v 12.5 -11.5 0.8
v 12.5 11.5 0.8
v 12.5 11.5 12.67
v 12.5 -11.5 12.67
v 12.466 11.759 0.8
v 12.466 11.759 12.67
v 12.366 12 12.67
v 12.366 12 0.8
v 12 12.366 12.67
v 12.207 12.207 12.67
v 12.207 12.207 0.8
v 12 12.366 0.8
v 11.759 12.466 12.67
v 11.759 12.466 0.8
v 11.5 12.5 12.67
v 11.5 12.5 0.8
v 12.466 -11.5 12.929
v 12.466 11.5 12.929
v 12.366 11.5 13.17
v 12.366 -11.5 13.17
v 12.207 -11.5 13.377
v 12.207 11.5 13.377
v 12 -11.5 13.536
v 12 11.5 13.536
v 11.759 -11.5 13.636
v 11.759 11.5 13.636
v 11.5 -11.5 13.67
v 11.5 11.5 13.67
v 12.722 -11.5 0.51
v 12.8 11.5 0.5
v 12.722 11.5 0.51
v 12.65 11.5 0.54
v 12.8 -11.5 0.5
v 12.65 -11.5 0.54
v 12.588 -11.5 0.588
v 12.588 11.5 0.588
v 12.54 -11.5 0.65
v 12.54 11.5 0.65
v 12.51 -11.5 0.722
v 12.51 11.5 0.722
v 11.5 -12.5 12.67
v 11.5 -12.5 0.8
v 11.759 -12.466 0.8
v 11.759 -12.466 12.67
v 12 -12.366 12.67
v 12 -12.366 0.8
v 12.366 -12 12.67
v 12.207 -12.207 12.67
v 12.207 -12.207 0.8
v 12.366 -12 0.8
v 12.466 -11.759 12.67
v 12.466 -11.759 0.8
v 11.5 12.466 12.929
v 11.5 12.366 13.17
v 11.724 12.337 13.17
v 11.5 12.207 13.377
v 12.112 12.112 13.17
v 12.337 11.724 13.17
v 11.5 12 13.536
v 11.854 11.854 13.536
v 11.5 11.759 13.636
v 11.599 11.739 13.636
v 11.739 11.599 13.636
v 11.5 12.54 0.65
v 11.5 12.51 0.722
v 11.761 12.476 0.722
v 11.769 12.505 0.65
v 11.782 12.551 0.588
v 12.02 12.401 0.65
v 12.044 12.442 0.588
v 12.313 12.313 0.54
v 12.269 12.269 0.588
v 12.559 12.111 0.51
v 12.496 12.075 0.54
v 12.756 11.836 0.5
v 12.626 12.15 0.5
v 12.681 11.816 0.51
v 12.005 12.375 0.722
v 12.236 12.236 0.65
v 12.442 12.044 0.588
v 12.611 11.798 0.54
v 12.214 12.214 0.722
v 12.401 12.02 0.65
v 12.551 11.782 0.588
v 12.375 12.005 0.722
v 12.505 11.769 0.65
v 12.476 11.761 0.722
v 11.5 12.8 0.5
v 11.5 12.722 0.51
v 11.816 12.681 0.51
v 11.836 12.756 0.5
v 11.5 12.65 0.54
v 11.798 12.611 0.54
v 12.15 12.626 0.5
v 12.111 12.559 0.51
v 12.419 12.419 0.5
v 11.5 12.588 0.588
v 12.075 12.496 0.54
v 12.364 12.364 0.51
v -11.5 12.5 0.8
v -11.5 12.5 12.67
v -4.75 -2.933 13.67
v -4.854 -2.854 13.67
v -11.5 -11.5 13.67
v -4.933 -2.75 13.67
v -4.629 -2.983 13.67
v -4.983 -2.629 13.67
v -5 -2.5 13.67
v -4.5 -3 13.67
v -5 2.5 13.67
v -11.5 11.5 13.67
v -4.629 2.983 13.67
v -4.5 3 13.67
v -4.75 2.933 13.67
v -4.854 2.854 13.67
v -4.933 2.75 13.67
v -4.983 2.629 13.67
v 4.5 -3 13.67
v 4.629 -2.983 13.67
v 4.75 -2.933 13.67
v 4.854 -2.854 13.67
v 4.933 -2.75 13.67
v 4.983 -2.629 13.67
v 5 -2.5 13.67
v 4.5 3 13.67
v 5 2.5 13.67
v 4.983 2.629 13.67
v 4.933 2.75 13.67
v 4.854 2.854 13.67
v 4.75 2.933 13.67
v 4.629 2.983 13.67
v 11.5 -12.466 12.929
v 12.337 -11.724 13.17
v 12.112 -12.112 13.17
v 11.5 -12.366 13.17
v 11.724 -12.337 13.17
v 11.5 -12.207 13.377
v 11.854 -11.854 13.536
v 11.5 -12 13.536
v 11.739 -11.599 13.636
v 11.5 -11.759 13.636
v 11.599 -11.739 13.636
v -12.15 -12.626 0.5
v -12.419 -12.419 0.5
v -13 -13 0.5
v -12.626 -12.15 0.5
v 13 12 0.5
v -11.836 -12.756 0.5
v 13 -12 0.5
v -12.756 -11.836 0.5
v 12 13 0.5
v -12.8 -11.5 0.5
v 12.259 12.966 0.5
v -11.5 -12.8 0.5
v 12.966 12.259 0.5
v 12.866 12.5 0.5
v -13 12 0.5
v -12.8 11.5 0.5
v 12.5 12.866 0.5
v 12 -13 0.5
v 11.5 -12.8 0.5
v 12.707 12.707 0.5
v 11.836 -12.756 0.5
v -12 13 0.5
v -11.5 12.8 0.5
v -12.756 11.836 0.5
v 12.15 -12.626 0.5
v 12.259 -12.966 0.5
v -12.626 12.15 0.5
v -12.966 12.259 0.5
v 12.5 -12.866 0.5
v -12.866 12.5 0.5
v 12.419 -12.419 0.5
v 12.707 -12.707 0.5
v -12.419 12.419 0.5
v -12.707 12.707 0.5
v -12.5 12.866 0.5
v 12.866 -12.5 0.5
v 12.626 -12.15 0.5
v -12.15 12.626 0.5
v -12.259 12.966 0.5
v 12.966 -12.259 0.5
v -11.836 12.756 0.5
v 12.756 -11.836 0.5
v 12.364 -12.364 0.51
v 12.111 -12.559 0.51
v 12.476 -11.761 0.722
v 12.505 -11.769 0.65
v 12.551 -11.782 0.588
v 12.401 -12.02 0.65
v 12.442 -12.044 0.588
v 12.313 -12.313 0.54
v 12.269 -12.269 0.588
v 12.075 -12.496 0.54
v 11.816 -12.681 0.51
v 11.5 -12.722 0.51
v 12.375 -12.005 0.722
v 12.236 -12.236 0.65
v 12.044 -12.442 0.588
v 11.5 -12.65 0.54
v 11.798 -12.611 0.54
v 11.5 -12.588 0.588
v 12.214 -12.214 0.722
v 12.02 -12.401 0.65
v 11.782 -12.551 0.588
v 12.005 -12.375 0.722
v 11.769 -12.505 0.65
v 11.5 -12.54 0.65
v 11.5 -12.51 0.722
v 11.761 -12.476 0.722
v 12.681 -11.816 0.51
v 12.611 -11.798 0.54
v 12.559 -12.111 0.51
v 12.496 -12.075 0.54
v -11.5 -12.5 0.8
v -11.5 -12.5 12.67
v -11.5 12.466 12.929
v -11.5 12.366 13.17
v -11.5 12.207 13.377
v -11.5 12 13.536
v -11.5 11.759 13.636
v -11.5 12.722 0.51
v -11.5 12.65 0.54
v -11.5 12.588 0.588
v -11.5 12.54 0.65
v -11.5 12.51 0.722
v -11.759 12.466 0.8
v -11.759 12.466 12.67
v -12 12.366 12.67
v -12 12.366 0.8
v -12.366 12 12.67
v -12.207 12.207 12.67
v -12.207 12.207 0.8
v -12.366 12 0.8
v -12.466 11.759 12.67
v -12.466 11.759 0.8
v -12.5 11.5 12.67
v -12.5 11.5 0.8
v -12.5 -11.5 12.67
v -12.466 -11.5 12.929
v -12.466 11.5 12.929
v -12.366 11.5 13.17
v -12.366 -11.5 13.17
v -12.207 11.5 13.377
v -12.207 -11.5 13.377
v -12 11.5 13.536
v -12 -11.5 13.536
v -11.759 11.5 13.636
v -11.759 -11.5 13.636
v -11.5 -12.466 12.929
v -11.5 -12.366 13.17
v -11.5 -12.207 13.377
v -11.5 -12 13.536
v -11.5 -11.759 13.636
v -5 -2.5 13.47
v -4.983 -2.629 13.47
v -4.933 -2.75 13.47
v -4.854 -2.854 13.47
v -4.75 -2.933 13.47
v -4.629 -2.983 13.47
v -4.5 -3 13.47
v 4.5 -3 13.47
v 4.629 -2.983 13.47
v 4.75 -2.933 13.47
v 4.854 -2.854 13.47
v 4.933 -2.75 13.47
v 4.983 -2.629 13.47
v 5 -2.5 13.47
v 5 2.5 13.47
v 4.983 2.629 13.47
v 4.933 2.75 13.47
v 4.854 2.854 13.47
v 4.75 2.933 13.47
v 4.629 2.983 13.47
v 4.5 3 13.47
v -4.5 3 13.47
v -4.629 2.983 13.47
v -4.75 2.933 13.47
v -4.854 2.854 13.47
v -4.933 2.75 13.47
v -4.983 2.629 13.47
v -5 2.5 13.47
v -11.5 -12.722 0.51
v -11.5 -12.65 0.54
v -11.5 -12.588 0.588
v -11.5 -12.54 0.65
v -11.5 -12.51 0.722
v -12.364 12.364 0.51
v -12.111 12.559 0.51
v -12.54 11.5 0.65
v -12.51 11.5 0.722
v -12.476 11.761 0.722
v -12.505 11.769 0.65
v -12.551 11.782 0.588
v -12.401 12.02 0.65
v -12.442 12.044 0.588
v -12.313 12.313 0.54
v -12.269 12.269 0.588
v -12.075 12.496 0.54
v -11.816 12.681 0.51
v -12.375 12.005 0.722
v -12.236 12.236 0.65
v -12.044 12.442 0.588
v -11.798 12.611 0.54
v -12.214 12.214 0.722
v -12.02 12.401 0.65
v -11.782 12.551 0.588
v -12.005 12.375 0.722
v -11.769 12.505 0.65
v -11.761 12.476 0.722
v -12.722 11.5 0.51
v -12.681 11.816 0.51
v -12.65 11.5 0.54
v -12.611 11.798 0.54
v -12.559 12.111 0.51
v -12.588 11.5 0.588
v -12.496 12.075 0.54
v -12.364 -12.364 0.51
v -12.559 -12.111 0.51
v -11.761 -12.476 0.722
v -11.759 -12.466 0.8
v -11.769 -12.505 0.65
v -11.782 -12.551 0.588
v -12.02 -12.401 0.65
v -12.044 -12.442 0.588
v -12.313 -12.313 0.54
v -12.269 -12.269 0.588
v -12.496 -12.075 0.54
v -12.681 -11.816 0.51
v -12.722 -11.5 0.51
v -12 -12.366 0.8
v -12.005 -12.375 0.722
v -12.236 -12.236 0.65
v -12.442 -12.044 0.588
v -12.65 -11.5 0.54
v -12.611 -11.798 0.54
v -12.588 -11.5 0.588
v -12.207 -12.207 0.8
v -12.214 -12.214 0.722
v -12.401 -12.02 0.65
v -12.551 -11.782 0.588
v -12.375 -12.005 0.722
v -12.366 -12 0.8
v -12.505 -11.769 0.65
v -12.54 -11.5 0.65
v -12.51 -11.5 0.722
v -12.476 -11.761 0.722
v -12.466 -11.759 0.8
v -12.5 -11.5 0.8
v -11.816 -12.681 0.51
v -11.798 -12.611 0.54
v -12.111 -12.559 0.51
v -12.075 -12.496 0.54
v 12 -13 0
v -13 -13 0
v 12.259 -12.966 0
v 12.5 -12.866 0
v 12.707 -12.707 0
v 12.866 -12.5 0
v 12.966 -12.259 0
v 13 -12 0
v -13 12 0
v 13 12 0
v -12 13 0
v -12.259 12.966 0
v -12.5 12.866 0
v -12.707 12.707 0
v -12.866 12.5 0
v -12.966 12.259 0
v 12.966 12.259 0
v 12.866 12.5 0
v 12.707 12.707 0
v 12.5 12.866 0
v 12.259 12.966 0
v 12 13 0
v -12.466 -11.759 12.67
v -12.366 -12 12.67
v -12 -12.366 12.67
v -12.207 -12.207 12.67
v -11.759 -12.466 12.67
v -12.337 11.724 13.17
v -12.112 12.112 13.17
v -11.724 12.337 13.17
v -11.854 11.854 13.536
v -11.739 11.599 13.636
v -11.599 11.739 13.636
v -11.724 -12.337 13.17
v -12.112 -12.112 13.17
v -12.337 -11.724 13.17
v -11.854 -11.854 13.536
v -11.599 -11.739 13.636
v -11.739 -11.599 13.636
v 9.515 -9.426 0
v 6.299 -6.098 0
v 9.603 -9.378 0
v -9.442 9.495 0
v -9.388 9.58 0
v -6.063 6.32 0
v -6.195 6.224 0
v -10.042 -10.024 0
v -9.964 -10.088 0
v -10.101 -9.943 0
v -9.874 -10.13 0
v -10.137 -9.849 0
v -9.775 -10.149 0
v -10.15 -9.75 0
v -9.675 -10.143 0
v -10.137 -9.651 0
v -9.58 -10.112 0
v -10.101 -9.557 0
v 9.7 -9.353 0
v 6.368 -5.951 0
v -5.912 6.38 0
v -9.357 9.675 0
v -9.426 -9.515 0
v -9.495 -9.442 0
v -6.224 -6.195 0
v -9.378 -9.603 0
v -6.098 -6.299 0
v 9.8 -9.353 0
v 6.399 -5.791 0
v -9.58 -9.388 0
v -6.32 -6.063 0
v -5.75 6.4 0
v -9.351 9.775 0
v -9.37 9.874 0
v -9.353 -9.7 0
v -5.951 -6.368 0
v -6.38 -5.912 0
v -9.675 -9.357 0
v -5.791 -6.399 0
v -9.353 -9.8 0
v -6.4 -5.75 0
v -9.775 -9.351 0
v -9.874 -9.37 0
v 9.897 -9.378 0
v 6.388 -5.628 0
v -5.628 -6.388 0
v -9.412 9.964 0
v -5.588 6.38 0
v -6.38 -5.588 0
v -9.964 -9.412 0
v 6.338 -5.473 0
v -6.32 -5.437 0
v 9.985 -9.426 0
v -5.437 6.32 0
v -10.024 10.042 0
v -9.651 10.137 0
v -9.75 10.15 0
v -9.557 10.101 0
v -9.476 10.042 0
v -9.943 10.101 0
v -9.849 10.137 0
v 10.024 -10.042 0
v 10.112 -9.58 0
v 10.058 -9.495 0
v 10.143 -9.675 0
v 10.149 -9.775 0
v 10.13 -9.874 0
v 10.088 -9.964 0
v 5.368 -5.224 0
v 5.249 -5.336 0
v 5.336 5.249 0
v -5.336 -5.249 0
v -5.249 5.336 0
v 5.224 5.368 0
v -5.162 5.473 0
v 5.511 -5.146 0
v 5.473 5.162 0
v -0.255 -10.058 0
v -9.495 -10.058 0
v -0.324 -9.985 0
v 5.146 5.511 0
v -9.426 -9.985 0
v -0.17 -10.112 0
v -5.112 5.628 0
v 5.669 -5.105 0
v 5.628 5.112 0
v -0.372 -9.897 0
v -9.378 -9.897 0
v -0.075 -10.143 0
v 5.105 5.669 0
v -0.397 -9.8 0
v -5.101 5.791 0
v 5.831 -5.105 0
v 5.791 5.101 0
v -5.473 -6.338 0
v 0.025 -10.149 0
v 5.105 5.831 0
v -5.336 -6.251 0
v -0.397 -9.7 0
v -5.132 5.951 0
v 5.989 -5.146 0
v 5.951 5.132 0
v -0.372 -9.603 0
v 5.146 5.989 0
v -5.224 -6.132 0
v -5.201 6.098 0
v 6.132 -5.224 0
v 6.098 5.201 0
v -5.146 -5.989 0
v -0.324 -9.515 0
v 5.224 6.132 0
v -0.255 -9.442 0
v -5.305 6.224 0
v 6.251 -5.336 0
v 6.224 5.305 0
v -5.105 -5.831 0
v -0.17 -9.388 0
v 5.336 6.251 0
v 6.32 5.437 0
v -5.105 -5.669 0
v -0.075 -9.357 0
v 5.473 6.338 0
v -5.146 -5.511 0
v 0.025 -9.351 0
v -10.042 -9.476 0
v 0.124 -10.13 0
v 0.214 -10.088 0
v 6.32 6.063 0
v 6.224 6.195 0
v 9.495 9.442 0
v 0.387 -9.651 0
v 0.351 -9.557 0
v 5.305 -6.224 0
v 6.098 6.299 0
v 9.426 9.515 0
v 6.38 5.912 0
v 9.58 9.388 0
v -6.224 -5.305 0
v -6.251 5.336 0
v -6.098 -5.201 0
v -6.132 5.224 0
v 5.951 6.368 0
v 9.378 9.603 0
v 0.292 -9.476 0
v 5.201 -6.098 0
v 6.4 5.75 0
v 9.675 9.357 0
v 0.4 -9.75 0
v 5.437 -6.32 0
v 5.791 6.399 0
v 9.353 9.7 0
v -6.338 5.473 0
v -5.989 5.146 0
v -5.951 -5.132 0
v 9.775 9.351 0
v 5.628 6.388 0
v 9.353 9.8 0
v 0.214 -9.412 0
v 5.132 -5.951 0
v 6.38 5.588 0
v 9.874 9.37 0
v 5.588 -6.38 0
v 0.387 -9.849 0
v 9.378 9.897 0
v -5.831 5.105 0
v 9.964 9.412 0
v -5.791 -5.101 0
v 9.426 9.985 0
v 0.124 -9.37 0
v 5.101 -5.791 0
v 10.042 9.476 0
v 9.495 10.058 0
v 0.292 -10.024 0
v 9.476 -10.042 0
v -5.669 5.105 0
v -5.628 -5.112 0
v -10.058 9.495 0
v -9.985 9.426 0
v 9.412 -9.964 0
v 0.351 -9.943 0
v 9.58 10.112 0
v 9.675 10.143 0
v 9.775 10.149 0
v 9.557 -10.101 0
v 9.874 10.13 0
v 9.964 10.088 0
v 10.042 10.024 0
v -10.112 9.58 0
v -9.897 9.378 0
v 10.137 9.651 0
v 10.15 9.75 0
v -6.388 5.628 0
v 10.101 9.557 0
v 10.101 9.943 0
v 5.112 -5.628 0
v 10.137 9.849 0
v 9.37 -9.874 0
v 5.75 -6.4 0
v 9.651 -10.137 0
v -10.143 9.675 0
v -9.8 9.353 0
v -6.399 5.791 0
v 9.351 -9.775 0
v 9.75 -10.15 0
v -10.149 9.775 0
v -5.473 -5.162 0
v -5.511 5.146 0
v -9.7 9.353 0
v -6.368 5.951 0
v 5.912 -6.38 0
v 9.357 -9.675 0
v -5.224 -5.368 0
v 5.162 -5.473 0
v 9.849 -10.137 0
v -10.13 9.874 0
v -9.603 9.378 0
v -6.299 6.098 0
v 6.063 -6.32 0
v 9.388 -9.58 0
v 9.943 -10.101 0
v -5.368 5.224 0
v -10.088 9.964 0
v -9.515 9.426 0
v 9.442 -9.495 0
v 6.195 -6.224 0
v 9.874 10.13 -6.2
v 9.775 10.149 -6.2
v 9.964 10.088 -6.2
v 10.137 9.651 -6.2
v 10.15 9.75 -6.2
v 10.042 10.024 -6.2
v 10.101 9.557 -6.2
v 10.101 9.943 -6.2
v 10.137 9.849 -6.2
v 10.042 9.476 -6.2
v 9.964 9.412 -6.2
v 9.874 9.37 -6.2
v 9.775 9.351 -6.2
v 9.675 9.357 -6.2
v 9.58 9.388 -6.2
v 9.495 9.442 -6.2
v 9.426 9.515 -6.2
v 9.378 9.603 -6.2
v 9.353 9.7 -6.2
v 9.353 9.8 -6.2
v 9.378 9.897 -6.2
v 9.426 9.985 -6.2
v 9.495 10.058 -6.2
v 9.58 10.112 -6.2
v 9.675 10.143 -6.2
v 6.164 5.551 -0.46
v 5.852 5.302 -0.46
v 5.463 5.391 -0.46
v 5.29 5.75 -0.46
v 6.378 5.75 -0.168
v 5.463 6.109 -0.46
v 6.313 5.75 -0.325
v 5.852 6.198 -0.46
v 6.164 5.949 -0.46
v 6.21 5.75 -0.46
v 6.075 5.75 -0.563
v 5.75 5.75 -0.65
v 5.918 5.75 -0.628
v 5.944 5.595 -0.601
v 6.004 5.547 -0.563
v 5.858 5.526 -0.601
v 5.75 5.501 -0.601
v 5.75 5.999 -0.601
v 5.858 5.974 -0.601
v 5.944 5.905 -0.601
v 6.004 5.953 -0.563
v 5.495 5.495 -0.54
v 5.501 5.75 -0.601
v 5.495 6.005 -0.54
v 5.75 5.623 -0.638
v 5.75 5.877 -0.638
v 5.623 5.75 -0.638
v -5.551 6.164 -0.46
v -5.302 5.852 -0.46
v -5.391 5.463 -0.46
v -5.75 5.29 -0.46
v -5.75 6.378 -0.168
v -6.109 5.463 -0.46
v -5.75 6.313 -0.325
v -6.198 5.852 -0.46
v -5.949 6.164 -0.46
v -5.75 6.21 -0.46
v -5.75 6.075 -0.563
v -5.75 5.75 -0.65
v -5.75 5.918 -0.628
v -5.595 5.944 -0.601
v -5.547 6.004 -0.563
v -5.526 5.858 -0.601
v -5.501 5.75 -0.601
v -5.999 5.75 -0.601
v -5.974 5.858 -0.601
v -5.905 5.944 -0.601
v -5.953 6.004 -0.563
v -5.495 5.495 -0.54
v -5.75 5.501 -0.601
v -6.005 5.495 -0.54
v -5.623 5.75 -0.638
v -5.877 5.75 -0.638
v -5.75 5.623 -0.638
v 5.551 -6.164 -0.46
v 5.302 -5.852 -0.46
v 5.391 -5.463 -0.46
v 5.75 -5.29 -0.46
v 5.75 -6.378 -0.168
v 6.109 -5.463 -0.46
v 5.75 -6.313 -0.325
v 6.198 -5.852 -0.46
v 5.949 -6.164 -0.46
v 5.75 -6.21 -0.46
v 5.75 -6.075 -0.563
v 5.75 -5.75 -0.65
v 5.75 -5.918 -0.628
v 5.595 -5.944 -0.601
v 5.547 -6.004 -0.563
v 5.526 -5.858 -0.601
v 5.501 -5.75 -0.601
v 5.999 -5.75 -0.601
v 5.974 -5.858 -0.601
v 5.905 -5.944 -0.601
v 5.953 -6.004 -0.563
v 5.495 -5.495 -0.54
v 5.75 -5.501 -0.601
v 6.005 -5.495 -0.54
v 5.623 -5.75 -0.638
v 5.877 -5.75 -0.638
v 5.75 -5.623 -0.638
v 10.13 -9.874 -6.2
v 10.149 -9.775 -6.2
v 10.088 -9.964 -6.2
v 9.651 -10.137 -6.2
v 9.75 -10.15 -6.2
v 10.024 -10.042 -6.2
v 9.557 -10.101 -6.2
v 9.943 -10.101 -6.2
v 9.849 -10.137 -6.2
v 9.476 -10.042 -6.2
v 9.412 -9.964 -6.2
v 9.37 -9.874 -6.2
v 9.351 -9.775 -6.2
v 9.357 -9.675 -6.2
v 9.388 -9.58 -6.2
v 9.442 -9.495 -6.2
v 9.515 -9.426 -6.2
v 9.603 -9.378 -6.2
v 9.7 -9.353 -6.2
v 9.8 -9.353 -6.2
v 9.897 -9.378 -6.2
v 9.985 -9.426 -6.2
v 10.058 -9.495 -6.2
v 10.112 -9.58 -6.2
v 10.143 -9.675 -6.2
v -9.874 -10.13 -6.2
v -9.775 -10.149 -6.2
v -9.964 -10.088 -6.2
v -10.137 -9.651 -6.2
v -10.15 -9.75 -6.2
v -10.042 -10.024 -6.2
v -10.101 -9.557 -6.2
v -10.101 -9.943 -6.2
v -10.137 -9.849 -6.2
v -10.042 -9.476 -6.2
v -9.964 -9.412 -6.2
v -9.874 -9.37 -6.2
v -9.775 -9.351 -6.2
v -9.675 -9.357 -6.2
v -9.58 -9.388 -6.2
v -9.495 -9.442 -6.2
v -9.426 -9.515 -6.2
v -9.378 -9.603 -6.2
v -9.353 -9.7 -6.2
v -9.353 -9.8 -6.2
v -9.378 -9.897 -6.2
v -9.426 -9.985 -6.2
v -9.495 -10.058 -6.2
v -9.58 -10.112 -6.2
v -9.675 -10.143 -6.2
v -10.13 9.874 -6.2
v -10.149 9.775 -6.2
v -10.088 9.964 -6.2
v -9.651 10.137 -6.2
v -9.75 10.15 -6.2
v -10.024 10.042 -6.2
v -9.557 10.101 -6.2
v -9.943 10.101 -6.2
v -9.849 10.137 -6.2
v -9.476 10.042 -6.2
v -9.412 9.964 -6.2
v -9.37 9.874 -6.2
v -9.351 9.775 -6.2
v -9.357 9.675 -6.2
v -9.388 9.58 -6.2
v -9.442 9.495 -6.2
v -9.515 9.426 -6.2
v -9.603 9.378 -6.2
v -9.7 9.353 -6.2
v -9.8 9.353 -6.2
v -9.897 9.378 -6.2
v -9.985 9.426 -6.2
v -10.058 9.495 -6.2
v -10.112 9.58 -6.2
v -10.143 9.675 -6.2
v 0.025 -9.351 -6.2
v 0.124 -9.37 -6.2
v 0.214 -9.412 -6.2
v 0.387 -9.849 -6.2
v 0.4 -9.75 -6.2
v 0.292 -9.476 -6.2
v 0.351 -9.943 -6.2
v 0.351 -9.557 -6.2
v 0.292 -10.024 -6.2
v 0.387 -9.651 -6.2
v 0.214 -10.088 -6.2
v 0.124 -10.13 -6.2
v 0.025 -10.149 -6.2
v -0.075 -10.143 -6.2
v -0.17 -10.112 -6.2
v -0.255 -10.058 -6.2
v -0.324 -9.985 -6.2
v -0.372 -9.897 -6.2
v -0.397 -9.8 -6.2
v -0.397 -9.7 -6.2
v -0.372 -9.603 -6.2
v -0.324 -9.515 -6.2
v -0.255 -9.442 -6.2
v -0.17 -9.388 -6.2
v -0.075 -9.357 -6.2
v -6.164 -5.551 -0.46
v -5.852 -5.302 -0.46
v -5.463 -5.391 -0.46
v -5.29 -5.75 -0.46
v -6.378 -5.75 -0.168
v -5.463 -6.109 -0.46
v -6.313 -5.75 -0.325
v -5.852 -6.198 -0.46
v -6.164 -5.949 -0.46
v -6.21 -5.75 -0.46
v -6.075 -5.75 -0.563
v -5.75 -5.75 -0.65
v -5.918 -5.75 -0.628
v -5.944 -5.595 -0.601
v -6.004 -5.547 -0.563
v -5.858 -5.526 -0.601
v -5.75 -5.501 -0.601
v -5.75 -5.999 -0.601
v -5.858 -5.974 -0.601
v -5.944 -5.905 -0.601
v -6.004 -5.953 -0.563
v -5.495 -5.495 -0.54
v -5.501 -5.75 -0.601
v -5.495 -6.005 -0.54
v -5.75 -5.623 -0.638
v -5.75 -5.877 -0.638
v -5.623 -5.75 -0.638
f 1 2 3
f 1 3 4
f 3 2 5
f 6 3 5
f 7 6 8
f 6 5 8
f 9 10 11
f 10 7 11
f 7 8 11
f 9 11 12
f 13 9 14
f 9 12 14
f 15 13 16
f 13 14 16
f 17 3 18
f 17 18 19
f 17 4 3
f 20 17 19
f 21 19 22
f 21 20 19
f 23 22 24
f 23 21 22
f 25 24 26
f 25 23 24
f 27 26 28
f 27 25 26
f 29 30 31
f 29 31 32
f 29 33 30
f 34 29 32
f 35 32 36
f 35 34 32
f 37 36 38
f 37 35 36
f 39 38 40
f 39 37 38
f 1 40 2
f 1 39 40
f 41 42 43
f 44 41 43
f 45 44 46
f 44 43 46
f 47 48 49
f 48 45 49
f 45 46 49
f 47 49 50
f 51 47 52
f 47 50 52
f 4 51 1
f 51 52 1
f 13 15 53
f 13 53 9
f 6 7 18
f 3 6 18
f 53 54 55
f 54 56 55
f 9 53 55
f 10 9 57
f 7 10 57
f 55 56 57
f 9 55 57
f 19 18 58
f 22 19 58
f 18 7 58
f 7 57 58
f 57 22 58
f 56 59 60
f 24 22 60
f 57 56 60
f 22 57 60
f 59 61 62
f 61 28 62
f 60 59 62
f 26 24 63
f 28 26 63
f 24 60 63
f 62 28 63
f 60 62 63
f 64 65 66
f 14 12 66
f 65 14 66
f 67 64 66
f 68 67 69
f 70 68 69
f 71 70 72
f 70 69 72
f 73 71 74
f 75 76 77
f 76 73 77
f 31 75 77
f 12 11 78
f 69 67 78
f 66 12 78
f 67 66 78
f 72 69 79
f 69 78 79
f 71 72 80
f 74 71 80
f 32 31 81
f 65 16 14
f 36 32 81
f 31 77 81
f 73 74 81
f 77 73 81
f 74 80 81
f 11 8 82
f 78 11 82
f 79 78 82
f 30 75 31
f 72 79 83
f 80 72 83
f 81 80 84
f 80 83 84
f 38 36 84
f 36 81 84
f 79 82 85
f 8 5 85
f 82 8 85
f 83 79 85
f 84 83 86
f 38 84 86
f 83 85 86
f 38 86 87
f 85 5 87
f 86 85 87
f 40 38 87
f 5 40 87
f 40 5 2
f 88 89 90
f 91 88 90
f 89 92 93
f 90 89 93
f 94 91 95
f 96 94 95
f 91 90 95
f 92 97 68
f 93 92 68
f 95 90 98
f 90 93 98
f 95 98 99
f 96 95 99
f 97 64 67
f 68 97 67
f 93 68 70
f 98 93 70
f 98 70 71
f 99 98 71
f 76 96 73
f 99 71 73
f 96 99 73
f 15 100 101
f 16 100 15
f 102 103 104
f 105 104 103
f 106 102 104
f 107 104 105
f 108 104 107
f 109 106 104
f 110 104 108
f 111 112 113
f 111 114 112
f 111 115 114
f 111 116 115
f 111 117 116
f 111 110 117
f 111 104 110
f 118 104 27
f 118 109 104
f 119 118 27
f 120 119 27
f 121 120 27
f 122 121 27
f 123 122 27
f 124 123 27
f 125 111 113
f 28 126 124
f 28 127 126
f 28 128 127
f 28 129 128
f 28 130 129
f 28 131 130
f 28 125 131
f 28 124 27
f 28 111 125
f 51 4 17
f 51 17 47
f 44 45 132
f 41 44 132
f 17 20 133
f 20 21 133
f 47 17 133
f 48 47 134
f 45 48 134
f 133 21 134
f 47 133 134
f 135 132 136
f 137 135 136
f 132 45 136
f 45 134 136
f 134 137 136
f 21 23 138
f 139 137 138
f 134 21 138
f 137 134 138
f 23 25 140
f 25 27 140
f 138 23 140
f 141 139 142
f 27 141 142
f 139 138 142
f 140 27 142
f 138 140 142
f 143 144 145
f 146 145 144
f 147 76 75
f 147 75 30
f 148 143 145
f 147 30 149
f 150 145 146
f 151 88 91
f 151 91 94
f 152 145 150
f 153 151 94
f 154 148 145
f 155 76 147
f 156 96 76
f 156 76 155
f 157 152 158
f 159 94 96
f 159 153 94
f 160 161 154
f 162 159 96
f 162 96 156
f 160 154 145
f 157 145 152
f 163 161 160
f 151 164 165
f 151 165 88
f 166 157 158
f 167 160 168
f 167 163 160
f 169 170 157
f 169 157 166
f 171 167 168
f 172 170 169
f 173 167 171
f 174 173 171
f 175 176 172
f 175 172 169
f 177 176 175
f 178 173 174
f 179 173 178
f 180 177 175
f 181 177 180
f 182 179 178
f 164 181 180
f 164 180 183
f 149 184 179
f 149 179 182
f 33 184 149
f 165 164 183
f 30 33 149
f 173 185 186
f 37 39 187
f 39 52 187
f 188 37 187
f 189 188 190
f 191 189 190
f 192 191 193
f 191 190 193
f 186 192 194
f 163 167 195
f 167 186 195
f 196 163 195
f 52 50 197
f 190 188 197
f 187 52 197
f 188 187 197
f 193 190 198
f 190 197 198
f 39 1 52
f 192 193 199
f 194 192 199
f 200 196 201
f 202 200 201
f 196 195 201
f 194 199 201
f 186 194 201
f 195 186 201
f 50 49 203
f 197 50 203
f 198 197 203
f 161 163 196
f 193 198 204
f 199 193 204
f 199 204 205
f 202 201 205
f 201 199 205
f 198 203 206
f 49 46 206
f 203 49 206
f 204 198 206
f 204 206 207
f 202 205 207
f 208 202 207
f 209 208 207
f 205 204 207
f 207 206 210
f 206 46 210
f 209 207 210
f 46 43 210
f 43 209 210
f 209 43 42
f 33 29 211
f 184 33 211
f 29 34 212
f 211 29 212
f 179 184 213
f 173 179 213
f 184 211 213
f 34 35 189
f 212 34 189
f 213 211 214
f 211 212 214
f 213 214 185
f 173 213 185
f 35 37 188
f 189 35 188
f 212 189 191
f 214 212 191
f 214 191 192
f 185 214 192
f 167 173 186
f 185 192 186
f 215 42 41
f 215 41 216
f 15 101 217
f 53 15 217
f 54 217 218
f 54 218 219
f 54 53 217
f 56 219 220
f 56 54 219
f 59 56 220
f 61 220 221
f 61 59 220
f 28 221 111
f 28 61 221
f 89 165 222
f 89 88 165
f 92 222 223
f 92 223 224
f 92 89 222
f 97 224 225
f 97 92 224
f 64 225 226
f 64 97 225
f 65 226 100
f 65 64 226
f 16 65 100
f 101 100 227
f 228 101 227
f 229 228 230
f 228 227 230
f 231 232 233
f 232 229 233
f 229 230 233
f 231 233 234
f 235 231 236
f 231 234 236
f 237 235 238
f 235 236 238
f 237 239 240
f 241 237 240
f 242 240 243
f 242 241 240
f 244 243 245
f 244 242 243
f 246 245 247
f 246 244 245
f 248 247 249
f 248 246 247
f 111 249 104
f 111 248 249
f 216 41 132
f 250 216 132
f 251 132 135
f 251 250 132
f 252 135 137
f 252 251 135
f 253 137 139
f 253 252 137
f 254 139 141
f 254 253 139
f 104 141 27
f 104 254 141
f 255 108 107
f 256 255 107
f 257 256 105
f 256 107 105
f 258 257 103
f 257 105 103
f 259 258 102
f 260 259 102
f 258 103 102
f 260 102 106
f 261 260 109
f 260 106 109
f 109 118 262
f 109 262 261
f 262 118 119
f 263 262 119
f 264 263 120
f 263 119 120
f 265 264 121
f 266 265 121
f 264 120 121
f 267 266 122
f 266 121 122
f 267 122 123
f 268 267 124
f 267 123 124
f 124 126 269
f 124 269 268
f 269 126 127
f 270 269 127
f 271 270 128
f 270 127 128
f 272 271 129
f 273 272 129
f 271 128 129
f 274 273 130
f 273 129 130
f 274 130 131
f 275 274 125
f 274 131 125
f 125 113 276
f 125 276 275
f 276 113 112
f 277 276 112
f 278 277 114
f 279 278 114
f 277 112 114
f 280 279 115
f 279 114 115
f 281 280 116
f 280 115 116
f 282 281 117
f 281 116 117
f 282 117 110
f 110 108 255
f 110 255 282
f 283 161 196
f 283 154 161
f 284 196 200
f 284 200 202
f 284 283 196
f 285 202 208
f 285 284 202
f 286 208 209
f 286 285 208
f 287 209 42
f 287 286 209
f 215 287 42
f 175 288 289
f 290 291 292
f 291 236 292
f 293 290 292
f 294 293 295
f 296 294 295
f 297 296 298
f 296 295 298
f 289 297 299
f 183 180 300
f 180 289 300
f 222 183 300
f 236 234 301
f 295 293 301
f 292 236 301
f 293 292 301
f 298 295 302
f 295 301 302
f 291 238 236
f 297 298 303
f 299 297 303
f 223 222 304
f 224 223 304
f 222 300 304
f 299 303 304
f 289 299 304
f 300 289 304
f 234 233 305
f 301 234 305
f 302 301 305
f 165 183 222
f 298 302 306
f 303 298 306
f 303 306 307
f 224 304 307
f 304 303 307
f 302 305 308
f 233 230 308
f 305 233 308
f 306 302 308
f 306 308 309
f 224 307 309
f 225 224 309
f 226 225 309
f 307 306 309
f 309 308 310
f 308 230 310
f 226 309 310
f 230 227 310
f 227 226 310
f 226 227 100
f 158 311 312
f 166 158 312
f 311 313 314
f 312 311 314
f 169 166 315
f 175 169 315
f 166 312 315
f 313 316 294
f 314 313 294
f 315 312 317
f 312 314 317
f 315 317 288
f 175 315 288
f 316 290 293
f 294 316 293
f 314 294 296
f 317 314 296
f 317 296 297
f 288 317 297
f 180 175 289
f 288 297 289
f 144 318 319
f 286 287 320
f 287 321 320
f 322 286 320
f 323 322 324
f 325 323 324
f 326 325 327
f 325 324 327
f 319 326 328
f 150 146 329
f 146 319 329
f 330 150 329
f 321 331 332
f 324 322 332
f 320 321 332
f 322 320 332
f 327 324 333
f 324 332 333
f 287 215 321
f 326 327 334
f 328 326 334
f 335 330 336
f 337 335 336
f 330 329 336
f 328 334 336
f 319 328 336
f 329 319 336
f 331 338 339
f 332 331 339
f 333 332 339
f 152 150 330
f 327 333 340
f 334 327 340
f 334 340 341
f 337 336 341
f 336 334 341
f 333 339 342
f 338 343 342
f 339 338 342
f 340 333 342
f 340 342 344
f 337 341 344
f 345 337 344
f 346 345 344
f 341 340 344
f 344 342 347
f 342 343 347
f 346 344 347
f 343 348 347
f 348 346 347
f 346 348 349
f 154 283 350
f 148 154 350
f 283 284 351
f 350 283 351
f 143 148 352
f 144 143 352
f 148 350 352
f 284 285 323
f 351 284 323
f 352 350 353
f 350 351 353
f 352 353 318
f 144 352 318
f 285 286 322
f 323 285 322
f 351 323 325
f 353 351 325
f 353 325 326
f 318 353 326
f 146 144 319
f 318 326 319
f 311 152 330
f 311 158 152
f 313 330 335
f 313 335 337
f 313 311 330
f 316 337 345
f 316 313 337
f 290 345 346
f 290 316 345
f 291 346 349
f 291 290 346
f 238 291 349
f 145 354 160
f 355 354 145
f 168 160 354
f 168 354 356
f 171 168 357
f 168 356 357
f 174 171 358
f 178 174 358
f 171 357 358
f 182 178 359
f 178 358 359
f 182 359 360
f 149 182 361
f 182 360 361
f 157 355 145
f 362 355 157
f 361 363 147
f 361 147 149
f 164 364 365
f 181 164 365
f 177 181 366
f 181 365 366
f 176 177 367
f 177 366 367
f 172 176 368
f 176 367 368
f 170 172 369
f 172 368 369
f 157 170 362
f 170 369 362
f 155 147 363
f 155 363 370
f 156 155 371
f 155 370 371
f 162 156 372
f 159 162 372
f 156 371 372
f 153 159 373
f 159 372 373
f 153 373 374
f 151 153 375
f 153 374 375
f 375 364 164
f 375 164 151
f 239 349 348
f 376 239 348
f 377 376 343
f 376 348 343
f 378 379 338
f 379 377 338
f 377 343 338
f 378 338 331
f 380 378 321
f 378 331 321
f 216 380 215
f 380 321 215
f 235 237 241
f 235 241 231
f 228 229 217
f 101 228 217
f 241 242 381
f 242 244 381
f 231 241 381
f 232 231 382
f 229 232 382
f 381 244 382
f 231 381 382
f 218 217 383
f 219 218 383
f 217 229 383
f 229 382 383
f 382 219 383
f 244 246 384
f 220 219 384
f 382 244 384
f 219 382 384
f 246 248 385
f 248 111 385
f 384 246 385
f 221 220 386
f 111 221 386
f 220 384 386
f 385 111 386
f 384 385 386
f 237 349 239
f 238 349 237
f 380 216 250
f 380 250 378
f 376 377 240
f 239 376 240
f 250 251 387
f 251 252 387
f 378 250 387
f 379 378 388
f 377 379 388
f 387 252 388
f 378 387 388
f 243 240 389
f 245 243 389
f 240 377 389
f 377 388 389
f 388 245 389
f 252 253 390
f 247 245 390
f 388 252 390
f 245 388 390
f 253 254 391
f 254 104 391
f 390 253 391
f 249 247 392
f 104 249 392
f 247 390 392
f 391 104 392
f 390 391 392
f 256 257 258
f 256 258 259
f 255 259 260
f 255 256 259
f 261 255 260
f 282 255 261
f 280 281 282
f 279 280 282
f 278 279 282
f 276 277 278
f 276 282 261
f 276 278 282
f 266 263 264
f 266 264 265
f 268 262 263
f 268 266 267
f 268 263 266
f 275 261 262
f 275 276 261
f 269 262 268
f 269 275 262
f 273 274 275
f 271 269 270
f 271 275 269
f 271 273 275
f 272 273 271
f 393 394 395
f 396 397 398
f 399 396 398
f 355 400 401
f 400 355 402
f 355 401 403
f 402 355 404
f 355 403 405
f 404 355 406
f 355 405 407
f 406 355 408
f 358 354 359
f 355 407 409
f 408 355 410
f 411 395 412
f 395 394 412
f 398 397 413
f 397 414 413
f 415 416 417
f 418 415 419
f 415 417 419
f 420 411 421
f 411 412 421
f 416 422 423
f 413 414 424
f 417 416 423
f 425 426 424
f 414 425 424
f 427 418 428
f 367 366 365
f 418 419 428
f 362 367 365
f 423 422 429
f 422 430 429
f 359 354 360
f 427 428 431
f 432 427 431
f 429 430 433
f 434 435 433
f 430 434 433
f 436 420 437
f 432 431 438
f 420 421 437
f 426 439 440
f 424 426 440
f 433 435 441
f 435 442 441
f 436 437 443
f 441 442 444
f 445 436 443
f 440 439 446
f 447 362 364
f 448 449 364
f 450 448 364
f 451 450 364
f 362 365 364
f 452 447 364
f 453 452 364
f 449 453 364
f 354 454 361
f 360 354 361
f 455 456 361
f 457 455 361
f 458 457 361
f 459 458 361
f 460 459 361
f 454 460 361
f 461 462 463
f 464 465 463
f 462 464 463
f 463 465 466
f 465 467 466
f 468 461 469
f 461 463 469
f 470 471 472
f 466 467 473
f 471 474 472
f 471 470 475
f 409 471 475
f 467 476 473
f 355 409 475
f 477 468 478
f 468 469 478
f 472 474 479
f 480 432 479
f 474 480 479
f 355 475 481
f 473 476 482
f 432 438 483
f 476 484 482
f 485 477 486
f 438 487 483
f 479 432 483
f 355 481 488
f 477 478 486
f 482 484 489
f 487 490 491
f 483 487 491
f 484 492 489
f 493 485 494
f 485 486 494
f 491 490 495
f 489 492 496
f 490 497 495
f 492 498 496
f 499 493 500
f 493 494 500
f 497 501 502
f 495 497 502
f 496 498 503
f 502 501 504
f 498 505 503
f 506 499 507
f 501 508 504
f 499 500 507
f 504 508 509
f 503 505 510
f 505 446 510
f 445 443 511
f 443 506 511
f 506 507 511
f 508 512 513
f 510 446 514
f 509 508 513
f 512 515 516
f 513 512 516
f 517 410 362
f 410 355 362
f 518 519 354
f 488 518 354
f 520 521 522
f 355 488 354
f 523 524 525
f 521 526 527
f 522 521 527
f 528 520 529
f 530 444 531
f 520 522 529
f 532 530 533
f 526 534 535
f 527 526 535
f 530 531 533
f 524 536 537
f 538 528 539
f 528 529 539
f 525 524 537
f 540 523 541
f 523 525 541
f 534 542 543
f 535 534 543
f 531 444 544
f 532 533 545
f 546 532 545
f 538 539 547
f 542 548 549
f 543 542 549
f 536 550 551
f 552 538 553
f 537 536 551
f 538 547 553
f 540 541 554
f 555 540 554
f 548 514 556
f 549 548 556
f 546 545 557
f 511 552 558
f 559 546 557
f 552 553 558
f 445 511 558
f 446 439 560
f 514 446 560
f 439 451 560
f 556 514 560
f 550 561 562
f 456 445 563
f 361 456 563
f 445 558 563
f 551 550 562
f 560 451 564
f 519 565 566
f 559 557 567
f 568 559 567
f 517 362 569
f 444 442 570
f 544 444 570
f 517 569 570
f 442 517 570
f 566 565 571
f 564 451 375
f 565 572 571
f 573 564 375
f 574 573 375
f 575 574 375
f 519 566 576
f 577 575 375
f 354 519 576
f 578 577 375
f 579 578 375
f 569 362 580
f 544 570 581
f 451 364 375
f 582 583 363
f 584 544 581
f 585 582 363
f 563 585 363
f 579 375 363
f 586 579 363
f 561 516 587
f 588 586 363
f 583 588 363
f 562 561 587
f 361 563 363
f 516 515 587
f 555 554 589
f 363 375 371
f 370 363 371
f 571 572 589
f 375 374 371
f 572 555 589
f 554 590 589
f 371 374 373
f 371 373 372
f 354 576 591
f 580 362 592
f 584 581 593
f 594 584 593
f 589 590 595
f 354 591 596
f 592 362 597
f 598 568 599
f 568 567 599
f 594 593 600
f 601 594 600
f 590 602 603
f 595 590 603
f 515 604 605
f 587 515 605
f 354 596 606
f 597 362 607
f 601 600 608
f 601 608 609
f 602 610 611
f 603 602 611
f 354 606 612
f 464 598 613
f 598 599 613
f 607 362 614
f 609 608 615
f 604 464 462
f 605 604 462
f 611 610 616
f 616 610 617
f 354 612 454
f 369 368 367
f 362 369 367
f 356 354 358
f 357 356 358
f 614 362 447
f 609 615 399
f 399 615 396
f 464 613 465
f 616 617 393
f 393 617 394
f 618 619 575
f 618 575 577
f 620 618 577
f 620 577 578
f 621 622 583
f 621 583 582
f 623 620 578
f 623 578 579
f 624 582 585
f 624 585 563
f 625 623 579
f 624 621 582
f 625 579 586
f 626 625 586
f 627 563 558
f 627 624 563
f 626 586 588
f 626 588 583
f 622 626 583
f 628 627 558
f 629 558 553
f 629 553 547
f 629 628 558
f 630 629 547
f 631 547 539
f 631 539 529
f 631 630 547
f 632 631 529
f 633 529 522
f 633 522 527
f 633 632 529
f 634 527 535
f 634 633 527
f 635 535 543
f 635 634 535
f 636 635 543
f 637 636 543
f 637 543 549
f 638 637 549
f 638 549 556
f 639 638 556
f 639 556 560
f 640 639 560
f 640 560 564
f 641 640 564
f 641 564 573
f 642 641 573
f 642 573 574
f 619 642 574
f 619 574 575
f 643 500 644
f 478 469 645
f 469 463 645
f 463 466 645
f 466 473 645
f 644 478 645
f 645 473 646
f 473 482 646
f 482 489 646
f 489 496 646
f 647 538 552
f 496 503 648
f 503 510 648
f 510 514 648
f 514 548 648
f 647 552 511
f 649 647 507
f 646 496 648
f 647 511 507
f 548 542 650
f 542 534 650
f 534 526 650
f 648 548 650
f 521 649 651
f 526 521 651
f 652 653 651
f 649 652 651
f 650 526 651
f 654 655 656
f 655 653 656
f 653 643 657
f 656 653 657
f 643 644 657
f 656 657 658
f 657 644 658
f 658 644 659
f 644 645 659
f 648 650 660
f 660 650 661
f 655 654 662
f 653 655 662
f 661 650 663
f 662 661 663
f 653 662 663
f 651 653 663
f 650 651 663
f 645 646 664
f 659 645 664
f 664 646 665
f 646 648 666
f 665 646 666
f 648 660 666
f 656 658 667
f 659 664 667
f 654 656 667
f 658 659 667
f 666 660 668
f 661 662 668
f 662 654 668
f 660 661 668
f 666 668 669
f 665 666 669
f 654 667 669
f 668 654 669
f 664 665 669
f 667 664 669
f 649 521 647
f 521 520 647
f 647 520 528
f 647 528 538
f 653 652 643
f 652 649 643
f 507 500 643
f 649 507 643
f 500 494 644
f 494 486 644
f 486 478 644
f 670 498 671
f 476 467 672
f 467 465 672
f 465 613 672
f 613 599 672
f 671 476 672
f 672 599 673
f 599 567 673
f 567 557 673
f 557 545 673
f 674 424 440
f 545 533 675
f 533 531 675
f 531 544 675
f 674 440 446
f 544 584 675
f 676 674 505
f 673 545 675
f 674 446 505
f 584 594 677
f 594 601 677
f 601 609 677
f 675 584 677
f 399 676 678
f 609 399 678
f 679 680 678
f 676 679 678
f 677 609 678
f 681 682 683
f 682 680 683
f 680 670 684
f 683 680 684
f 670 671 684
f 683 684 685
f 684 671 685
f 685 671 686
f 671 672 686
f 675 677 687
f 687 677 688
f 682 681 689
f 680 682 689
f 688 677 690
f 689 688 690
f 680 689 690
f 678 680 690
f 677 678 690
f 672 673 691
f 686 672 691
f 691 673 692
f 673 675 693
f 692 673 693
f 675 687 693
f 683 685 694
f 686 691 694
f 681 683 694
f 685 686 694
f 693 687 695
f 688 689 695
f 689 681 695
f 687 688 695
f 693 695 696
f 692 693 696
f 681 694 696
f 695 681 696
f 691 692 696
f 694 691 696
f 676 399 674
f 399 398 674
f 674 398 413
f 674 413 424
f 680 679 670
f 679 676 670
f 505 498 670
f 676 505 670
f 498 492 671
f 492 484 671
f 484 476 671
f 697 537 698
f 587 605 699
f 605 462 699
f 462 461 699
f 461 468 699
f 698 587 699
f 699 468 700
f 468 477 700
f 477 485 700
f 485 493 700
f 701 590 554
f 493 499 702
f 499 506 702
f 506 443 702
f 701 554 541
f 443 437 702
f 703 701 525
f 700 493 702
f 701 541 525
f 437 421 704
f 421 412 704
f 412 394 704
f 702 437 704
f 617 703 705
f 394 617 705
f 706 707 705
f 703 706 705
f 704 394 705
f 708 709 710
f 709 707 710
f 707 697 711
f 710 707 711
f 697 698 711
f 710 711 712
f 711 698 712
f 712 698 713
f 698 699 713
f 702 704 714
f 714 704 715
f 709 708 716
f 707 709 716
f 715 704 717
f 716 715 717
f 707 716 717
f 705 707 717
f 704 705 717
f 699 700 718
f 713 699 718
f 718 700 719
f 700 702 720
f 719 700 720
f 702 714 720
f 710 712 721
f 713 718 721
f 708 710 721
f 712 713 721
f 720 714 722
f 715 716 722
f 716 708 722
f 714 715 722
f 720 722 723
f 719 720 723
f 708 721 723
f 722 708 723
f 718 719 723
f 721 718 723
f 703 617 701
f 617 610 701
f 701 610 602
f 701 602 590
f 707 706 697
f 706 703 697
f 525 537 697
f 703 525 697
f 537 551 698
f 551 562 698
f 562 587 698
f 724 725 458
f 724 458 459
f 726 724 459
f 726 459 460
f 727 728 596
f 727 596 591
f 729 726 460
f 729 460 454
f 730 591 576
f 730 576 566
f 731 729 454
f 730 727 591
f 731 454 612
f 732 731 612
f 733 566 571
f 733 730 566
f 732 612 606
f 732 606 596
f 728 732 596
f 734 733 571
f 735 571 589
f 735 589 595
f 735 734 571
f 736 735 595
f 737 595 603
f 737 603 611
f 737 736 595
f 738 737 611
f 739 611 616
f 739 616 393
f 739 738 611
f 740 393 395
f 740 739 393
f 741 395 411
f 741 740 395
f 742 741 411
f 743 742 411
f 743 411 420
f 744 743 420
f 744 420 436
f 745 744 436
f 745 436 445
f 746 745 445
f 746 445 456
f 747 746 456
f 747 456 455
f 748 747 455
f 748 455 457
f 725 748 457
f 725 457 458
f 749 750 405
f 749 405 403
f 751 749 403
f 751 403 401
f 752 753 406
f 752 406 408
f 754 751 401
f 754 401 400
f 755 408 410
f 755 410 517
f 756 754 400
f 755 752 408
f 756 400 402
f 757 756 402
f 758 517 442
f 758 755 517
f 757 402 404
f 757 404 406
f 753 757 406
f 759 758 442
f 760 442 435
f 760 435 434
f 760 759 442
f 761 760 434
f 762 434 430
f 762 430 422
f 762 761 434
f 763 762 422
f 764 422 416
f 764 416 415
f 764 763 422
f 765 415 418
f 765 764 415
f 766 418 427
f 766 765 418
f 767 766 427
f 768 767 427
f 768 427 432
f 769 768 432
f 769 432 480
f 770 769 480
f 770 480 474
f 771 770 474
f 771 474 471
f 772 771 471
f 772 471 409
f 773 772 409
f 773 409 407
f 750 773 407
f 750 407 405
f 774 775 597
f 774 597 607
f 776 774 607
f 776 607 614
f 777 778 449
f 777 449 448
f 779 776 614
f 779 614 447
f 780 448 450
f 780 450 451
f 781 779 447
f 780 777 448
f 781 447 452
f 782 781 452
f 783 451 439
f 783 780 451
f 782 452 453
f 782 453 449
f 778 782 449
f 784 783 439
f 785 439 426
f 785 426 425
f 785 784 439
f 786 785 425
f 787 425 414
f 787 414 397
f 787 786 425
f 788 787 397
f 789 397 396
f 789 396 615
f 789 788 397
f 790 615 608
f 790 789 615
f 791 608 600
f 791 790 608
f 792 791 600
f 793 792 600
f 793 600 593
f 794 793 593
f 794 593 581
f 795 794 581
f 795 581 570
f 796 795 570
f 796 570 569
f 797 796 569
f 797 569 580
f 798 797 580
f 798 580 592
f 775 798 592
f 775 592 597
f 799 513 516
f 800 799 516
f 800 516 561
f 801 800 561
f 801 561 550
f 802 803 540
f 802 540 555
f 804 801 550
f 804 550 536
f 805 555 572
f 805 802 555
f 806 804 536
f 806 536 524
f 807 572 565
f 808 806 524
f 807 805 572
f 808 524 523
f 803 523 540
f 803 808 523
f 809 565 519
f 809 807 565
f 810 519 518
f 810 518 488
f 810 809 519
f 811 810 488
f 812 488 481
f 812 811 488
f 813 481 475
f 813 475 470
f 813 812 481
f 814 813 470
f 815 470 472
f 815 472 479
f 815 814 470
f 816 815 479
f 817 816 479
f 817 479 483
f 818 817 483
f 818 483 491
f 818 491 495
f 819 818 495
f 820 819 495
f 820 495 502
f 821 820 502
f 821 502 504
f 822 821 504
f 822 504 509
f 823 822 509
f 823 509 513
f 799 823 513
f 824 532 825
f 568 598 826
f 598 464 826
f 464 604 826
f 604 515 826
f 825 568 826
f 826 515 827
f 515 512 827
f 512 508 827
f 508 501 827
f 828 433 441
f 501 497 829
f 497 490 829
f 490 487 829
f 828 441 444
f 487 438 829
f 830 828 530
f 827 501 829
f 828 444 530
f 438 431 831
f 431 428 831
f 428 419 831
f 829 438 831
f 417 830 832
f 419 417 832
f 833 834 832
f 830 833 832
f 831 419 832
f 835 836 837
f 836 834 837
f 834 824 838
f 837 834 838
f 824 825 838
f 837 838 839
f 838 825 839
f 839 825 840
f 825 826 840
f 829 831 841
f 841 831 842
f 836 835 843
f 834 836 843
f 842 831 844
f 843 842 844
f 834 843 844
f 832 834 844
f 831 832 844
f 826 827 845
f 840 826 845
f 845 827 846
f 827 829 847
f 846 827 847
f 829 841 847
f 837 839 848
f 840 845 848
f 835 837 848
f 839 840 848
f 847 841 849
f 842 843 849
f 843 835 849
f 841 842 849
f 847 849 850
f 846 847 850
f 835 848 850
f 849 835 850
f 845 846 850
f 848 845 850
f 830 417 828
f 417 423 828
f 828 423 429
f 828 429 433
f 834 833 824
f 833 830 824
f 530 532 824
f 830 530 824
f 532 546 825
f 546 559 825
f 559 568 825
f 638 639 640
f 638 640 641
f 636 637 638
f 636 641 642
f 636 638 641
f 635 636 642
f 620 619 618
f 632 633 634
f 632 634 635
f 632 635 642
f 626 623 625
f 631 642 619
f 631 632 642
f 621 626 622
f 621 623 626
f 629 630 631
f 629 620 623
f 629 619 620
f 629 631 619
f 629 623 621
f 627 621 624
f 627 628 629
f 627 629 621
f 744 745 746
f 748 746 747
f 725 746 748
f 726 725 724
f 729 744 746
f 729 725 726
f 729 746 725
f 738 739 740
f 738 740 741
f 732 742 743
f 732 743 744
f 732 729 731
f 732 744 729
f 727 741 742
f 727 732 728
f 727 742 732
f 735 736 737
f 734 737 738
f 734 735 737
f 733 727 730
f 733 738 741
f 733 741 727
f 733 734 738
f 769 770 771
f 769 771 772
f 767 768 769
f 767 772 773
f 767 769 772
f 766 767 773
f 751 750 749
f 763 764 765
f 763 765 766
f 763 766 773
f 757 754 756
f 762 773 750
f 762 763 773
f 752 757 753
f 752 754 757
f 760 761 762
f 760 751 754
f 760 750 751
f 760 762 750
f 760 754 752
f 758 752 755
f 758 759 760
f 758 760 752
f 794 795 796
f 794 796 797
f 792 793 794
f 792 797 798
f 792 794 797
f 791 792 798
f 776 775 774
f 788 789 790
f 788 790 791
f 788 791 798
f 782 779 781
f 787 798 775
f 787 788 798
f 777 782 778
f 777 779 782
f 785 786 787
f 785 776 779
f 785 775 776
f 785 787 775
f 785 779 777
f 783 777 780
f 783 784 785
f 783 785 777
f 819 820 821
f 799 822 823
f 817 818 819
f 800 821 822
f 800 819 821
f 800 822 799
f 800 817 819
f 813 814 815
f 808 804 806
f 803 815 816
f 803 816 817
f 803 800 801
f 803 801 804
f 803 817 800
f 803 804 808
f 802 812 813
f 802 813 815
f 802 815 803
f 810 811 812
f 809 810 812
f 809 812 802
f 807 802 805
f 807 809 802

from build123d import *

# Parameters (mm, degrees)
SKETCH005_W    = 0.4
SKETCH005_H    = 6.2
SKETCH003_W    = 0.4
SKETCH003_H    = 6.2
ARRAY001_COUNT = 4
ARRAY_COUNT    = 4
PAD_DEPTH      = 0.5
PAD001_DEPTH   = 13.17
FILLET_R       = 0.3
FILLET001_R    = 1
POCKET_DEPTH   = 0.2


with BuildPart() as revolution002:
    # Sketch005 → Revolution002 (revolve)
    with BuildSketch(Plane.XZ.offset(9.75)):
        with Locations((0.2, -3.1)):
            Rectangle(SKETCH005_W, SKETCH005_H)
    revolve(axis=Axis((0, -9.75, 0), (0, 0, 1)))


with BuildPart() as array001:
    # Sketch003 → Revolution001 (revolve)
    with BuildSketch(Plane.XZ.offset(-9.75)):
        with Locations((9.95, -3.1)):
            Rectangle(SKETCH003_W, SKETCH003_H)
    revolve(axis=Axis((9.75, 9.75, 0), (0, 0, -1)))

    # Array001: Array001 ×4 about axis
    array001_axis = Axis((0, 0, 0), (0, 0, 1))


with BuildPart() as array001_1:
    add(array001.part)
    for i in range(1, ARRAY001_COUNT):
        add(array001.part.rotate(array001_axis, i * 360 / ARRAY001_COUNT))


with BuildPart() as array:
    # Sketch002 → Revolution (revolve)
    with BuildSketch(Plane.XZ.offset(-5.75)):
        with BuildLine():
            Line((5.75, -0.65), (5.75, 0))
            Line((5.75, 0), (6.4, 0))
            ThreePointArc((5.75, -0.65), (6.2096194078, -0.4596194078), (6.4, 0))
        make_face()
    revolve(axis=Axis((5.75, 5.75, 0), (0, 0, -1)))

    # Array: Array ×4 about axis
    array_axis = Axis((0, 0, 0), (0, 0, 1))


with BuildPart() as array_1:
    add(array.part)
    for i in range(1, ARRAY_COUNT):
        add(array.part.rotate(array_axis, i * 360 / ARRAY_COUNT))


with BuildPart() as fusion002:
    # Sketch → Pad (new body)
    with BuildSketch(Plane.XY):
        with BuildLine():
            Line((-12, 13), (12, 13))
            ThreePointArc((13, 12), (12.7071067812, 12.7071067812), (12, 13))
            Line((13, 12), (13, -12))
            ThreePointArc((12, -13), (12.7071067812, -12.7071067812), (13, -12))
            Line((12, -13), (-13, -13))
            Line((-13, -13), (-13, 12))
            ThreePointArc((-12, 13), (-12.7071067812, 12.7071067812), (-13, 12))
        make_face()
    extrude(amount=PAD_DEPTH)

    # Sketch001 → Pad001 (new body)
    with BuildSketch(Plane.XY.offset(0.5)):
        with BuildLine():
            Line((-11.5, 12.5), (11.5, 12.5))
            ThreePointArc((12.5, 11.5), (12.2071067812, 12.2071067812), (11.5, 12.5))
            Line((12.5, 11.5), (12.5, -11.5))
            ThreePointArc((11.5, -12.5), (12.2071067812, -12.2071067812), (12.5, -11.5))
            Line((11.5, -12.5), (-11.5, -12.5))
            ThreePointArc((-12.5, -11.5), (-12.2071067812, -12.2071067812), (-11.5, -12.5))
            Line((-12.5, -11.5), (-12.5, 11.5))
            ThreePointArc((-11.5, 12.5), (-12.2071067812, 12.2071067812), (-12.5, 11.5))
        make_face()
    extrude(amount=PAD001_DEPTH)

    # Fillet
    fillet_edges = [fusion002.edges().sort_by_distance(p)[0] for p in [
        (12.5, 0, 0.5),
        (12.207107, -12.207107, 0.5),
        (0, -12.5, 0.5),
        (12.207107, 12.207107, 0.5),
        (-12.207107, -12.207107, 0.5),
        (0, 12.5, 0.5),
        (-12.207107, 12.207107, 0.5),
        (-12.5, 0, 0.5),
    ]]
    fillet(fillet_edges, radius=FILLET_R)

    # Fillet001
    fillet001_edges = [fusion002.edges().sort_by_distance(p)[0] for p in [
        (-12.5, 0, 13.67),
        (-12.207107, 12.207107, 13.67),
        (0, 12.5, 13.67),
        (12.207107, 12.207107, 13.67),
        (12.5, 0, 13.67),
        (12.207107, -12.207107, 13.67),
        (0, -12.5, 13.67),
        (-12.207107, -12.207107, 13.67),
    ]]
    fillet(fillet001_edges, radius=FILLET001_R)

    # Fusion: union Array
    add(array_1.part)

    # Fusion001: union Array001
    add(array001_1.part)

    # Sketch004 → Pocket (cut)
    with BuildSketch(Plane.XY.offset(13.67)):
        with BuildLine():
            Line((-4.5, 3), (4.5, 3))
            ThreePointArc((5, 2.5), (4.8535533906, 2.8535533906), (4.5, 3))
            Line((5, 2.5), (5, -2.5))
            ThreePointArc((4.5, -3), (4.8535533906, -2.8535533906), (5, -2.5))
            Line((4.5, -3), (-4.5, -3))
            ThreePointArc((-5, -2.5), (-4.8535533906, -2.8535533906), (-4.5, -3))
            Line((-5, -2.5), (-5, 2.5))
            ThreePointArc((-4.5, 3), (-4.8535533906, 2.8535533906), (-5, 2.5))
        make_face()
    extrude(amount=-POCKET_DEPTH, mode=Mode.SUBTRACT)

    # Fusion002: union Revolution002
    add(revolution002.part)


solid = fusion002.part
